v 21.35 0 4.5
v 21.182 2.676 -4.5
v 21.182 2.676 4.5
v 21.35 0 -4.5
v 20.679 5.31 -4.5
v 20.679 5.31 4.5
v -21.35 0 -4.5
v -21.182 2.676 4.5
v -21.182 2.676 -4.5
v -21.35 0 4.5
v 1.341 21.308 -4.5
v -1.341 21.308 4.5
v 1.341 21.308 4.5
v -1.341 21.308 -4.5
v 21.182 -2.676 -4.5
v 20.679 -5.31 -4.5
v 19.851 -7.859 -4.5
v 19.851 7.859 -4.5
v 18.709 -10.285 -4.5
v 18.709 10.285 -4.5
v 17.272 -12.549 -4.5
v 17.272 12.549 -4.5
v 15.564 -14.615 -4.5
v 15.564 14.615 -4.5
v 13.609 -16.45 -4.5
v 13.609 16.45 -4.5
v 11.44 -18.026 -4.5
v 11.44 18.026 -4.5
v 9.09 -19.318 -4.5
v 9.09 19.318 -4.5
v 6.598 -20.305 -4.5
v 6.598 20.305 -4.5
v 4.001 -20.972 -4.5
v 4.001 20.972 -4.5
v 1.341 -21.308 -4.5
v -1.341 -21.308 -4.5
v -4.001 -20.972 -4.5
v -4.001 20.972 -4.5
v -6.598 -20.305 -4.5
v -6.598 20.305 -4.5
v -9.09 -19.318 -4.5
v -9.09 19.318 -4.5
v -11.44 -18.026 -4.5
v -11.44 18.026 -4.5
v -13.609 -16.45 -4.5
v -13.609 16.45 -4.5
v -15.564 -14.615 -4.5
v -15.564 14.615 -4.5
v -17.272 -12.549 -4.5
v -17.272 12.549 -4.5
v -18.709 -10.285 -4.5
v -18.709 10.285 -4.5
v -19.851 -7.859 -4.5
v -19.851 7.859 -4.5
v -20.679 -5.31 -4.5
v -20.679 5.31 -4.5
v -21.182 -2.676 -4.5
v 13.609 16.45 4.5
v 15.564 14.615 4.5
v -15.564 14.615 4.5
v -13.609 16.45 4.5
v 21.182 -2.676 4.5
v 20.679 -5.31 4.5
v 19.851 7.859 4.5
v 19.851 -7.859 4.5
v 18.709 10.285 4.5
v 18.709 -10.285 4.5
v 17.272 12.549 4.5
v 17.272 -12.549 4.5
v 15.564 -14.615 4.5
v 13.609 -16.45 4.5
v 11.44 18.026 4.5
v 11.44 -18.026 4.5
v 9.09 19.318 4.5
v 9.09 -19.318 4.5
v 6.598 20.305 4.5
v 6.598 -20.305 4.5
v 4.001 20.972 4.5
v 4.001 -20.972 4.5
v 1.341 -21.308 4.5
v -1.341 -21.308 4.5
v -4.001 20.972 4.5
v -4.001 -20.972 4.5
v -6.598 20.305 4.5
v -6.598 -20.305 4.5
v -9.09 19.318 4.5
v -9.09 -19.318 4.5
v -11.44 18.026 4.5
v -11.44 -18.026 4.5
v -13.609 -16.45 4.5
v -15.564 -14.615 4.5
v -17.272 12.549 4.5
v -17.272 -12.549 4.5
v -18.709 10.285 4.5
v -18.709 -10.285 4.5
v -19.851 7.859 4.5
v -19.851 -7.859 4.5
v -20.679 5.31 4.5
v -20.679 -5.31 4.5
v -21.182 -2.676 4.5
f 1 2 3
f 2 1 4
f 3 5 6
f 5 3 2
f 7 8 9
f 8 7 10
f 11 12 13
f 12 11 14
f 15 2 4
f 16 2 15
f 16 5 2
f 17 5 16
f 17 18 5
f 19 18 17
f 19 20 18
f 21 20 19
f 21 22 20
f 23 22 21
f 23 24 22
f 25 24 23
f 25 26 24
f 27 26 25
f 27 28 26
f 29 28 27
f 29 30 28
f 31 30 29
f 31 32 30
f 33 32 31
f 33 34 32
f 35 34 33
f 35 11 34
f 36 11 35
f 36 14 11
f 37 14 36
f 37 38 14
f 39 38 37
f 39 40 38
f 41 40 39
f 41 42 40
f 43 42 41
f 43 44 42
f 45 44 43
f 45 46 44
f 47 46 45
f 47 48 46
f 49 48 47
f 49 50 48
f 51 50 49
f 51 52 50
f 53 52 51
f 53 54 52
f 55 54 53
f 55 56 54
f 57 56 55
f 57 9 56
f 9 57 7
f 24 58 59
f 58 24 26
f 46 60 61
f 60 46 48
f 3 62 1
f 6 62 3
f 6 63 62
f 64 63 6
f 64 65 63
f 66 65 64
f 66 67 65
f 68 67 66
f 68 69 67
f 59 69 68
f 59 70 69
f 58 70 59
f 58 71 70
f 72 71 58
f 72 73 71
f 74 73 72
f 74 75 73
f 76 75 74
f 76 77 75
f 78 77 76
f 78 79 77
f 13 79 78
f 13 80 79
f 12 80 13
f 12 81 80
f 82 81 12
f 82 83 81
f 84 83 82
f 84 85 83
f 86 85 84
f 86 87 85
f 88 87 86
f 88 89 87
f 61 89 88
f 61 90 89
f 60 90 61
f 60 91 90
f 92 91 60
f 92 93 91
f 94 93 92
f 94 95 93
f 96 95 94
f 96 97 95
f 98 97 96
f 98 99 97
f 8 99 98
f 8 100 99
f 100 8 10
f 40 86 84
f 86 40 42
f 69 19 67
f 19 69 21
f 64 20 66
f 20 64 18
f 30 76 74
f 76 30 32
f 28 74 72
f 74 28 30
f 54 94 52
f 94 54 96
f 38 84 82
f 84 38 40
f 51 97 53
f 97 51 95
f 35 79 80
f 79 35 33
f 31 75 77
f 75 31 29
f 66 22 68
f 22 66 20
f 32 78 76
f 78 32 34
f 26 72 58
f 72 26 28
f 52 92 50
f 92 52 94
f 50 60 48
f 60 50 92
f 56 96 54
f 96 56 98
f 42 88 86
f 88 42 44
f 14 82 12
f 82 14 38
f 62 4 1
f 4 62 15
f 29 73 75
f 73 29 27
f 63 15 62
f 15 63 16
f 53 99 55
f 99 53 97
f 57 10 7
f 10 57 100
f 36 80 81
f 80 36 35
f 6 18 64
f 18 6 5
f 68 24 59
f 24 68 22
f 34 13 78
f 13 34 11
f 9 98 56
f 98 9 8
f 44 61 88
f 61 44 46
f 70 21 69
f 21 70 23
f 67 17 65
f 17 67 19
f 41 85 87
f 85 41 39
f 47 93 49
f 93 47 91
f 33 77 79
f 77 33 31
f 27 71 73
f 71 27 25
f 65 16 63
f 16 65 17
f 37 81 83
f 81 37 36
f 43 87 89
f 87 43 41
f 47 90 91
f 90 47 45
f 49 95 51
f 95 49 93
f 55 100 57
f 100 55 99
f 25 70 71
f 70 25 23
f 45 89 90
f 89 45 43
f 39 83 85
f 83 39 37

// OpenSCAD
$fn = 50;


difference() {
	union() {
		translate(v = [0, 0, -4.5000000000]) {
			cylinder(h = 9, r = 21.3500000000);
		}
	}
	union() {
		translate(v = [0, 0, -100.0000000000]) {
			cylinder(h = 200, r = 0);
		}
	}
}
